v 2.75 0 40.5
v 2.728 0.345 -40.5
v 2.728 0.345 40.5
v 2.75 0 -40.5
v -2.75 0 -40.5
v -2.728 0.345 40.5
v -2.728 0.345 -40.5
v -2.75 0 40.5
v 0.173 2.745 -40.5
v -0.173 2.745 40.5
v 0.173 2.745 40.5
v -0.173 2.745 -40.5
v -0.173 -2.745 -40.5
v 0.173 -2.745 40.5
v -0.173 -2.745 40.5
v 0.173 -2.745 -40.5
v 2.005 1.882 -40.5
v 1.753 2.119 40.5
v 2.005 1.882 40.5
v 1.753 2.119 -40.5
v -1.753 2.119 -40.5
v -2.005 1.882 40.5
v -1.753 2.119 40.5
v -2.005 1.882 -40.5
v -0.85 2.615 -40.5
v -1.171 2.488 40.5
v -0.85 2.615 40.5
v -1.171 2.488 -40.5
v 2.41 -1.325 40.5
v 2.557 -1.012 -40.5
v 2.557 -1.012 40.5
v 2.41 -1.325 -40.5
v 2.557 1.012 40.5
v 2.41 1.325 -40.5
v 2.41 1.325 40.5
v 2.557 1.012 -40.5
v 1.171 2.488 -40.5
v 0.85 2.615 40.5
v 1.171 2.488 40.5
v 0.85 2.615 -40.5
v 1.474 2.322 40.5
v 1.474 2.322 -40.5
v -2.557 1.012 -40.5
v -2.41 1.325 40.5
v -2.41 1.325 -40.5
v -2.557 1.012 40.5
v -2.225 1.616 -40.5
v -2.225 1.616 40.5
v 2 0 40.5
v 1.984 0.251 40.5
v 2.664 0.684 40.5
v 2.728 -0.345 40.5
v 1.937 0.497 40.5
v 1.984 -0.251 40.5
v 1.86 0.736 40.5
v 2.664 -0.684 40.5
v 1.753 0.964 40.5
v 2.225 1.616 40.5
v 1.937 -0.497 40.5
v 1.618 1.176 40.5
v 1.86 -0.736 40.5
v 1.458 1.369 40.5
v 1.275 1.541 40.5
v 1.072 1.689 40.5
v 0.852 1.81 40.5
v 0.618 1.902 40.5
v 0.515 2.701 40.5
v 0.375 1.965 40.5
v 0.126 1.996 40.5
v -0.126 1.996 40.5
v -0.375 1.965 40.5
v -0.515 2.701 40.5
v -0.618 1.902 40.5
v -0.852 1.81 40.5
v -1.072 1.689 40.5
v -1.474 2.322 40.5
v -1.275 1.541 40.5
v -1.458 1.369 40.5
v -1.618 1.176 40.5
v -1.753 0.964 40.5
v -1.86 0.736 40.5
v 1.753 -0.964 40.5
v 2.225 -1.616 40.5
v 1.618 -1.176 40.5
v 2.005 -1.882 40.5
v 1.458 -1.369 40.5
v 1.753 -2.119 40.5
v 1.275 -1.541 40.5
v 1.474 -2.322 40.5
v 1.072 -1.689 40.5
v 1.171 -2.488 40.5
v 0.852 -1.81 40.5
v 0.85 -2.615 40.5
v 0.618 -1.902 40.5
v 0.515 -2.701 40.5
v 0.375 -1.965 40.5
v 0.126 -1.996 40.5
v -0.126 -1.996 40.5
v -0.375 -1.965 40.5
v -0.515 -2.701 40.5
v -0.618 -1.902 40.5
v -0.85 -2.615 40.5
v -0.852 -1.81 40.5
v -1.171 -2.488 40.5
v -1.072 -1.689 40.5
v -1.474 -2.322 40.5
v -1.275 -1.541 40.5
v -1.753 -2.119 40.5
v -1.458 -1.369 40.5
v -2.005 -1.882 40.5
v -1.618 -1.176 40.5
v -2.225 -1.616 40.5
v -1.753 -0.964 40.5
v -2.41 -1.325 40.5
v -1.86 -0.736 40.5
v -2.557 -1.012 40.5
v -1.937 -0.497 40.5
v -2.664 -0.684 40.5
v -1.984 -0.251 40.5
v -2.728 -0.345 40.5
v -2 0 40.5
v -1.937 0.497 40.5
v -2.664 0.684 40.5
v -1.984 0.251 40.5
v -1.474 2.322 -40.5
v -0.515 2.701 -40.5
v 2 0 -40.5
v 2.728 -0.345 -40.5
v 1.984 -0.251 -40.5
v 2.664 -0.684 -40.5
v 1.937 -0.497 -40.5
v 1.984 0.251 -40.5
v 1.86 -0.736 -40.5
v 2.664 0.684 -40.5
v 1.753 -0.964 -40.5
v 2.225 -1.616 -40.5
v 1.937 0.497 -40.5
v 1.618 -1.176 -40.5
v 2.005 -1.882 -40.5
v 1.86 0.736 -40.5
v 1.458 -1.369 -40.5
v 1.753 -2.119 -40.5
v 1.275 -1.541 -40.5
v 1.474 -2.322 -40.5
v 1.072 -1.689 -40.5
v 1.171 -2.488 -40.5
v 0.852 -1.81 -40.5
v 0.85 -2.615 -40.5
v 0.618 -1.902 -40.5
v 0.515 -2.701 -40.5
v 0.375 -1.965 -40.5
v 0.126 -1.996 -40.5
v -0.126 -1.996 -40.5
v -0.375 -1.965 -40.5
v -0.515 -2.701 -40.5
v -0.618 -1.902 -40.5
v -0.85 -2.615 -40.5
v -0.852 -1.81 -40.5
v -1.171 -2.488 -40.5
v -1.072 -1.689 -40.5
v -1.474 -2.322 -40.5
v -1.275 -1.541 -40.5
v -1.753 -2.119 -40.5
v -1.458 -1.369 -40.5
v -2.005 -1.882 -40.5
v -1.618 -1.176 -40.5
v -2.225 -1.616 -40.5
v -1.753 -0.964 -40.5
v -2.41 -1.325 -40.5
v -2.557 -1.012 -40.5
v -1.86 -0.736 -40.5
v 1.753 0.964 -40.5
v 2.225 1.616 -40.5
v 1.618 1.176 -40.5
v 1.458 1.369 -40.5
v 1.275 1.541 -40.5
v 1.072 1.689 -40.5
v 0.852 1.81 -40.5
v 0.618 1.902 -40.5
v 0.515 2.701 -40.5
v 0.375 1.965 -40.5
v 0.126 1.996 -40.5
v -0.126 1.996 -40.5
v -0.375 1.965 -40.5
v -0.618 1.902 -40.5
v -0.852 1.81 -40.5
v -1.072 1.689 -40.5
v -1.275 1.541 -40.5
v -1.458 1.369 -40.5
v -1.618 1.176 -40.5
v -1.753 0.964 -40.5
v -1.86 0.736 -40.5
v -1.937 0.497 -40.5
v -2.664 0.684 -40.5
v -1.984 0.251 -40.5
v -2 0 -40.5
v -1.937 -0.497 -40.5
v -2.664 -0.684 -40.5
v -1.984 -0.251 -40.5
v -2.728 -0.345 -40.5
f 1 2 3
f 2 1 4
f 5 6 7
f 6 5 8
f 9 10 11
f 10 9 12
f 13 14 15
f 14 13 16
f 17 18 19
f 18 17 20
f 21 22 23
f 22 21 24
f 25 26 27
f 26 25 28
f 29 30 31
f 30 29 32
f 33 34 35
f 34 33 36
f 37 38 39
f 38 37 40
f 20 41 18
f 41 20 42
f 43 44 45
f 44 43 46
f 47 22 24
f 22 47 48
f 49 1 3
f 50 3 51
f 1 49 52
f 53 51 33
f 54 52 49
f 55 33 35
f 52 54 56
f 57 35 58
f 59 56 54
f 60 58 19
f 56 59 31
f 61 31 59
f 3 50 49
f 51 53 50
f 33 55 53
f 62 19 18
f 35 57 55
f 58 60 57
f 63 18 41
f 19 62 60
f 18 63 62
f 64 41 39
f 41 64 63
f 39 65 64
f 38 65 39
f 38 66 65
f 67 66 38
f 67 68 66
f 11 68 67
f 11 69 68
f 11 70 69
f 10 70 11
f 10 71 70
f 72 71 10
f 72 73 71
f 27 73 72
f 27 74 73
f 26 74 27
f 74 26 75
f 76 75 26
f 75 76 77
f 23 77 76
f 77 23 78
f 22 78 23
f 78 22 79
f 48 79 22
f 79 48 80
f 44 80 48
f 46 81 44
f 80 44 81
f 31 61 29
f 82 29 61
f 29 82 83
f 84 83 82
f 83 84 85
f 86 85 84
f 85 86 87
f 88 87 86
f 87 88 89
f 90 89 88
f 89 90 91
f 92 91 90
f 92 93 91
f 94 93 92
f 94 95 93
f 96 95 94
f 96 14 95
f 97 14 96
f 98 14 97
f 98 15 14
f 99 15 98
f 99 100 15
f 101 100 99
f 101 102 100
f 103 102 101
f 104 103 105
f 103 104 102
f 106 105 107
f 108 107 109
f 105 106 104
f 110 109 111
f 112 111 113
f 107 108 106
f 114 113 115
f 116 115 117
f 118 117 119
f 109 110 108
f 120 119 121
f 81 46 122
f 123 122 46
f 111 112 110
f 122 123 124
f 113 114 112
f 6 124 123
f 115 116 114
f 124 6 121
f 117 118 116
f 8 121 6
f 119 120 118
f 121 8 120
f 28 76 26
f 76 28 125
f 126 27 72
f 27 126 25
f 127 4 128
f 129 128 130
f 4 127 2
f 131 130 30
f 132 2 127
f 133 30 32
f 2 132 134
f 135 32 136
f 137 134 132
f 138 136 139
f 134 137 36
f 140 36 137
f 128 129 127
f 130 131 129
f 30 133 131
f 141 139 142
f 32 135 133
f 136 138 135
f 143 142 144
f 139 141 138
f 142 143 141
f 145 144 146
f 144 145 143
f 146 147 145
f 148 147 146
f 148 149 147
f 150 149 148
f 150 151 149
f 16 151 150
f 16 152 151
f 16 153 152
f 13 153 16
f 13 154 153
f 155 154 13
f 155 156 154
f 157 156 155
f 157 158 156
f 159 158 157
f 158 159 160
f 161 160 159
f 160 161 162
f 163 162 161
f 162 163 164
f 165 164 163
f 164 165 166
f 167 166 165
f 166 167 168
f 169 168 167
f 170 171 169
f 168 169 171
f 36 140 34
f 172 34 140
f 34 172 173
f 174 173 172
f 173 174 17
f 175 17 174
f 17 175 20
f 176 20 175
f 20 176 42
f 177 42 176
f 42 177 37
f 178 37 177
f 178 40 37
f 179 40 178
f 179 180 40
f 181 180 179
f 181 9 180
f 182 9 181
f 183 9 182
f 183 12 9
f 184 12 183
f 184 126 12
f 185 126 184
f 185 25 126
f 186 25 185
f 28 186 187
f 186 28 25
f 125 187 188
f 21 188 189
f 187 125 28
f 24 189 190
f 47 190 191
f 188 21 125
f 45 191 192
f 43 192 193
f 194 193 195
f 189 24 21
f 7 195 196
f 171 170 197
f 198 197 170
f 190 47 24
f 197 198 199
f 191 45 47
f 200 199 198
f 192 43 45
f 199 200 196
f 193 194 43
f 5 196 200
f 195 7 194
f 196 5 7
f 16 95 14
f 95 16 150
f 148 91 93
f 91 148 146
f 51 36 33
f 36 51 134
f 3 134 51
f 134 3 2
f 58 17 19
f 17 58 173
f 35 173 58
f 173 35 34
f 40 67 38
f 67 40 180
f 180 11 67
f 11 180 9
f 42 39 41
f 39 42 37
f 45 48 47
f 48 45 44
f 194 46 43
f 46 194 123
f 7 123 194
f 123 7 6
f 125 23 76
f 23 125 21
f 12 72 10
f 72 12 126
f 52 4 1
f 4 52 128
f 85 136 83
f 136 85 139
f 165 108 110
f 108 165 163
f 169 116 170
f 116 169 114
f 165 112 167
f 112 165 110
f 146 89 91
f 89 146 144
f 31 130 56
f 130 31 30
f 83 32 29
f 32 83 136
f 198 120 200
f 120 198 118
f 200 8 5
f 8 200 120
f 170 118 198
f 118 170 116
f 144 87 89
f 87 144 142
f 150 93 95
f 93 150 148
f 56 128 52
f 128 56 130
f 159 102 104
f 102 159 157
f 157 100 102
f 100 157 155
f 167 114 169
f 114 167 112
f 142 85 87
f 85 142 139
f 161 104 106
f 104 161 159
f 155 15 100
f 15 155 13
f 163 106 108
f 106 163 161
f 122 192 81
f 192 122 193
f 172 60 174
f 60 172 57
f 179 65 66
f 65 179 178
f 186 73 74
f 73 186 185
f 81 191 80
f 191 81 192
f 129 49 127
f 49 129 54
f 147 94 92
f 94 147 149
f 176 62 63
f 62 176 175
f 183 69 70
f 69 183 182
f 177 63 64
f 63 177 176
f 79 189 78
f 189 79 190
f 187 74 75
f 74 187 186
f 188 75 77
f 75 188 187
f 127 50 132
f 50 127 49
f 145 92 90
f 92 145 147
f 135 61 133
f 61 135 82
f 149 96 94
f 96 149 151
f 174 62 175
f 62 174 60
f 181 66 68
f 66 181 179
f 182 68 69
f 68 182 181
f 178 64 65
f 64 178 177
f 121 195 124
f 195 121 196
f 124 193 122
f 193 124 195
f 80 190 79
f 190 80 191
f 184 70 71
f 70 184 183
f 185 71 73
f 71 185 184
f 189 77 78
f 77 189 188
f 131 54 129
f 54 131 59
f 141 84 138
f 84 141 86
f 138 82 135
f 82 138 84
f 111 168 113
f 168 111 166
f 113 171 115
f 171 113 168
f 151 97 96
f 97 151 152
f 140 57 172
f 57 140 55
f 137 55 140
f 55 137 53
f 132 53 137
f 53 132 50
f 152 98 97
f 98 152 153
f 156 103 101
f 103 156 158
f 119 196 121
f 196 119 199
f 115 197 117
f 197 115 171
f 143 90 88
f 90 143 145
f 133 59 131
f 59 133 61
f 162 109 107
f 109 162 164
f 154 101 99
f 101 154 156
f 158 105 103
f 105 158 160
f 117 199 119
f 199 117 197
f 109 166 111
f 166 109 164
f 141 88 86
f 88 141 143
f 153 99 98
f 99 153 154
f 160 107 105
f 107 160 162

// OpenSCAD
$fn = 50;


difference() {
	union() {
		translate(v = [0, 0, -40.5000000000]) {
			cylinder(h = 81, r = 2.7500000000);
		}
	}
	union() {
		translate(v = [0, 0, -100.0000000000]) {
			cylinder(h = 200, r = 2.0000000000);
		}
	}
}
